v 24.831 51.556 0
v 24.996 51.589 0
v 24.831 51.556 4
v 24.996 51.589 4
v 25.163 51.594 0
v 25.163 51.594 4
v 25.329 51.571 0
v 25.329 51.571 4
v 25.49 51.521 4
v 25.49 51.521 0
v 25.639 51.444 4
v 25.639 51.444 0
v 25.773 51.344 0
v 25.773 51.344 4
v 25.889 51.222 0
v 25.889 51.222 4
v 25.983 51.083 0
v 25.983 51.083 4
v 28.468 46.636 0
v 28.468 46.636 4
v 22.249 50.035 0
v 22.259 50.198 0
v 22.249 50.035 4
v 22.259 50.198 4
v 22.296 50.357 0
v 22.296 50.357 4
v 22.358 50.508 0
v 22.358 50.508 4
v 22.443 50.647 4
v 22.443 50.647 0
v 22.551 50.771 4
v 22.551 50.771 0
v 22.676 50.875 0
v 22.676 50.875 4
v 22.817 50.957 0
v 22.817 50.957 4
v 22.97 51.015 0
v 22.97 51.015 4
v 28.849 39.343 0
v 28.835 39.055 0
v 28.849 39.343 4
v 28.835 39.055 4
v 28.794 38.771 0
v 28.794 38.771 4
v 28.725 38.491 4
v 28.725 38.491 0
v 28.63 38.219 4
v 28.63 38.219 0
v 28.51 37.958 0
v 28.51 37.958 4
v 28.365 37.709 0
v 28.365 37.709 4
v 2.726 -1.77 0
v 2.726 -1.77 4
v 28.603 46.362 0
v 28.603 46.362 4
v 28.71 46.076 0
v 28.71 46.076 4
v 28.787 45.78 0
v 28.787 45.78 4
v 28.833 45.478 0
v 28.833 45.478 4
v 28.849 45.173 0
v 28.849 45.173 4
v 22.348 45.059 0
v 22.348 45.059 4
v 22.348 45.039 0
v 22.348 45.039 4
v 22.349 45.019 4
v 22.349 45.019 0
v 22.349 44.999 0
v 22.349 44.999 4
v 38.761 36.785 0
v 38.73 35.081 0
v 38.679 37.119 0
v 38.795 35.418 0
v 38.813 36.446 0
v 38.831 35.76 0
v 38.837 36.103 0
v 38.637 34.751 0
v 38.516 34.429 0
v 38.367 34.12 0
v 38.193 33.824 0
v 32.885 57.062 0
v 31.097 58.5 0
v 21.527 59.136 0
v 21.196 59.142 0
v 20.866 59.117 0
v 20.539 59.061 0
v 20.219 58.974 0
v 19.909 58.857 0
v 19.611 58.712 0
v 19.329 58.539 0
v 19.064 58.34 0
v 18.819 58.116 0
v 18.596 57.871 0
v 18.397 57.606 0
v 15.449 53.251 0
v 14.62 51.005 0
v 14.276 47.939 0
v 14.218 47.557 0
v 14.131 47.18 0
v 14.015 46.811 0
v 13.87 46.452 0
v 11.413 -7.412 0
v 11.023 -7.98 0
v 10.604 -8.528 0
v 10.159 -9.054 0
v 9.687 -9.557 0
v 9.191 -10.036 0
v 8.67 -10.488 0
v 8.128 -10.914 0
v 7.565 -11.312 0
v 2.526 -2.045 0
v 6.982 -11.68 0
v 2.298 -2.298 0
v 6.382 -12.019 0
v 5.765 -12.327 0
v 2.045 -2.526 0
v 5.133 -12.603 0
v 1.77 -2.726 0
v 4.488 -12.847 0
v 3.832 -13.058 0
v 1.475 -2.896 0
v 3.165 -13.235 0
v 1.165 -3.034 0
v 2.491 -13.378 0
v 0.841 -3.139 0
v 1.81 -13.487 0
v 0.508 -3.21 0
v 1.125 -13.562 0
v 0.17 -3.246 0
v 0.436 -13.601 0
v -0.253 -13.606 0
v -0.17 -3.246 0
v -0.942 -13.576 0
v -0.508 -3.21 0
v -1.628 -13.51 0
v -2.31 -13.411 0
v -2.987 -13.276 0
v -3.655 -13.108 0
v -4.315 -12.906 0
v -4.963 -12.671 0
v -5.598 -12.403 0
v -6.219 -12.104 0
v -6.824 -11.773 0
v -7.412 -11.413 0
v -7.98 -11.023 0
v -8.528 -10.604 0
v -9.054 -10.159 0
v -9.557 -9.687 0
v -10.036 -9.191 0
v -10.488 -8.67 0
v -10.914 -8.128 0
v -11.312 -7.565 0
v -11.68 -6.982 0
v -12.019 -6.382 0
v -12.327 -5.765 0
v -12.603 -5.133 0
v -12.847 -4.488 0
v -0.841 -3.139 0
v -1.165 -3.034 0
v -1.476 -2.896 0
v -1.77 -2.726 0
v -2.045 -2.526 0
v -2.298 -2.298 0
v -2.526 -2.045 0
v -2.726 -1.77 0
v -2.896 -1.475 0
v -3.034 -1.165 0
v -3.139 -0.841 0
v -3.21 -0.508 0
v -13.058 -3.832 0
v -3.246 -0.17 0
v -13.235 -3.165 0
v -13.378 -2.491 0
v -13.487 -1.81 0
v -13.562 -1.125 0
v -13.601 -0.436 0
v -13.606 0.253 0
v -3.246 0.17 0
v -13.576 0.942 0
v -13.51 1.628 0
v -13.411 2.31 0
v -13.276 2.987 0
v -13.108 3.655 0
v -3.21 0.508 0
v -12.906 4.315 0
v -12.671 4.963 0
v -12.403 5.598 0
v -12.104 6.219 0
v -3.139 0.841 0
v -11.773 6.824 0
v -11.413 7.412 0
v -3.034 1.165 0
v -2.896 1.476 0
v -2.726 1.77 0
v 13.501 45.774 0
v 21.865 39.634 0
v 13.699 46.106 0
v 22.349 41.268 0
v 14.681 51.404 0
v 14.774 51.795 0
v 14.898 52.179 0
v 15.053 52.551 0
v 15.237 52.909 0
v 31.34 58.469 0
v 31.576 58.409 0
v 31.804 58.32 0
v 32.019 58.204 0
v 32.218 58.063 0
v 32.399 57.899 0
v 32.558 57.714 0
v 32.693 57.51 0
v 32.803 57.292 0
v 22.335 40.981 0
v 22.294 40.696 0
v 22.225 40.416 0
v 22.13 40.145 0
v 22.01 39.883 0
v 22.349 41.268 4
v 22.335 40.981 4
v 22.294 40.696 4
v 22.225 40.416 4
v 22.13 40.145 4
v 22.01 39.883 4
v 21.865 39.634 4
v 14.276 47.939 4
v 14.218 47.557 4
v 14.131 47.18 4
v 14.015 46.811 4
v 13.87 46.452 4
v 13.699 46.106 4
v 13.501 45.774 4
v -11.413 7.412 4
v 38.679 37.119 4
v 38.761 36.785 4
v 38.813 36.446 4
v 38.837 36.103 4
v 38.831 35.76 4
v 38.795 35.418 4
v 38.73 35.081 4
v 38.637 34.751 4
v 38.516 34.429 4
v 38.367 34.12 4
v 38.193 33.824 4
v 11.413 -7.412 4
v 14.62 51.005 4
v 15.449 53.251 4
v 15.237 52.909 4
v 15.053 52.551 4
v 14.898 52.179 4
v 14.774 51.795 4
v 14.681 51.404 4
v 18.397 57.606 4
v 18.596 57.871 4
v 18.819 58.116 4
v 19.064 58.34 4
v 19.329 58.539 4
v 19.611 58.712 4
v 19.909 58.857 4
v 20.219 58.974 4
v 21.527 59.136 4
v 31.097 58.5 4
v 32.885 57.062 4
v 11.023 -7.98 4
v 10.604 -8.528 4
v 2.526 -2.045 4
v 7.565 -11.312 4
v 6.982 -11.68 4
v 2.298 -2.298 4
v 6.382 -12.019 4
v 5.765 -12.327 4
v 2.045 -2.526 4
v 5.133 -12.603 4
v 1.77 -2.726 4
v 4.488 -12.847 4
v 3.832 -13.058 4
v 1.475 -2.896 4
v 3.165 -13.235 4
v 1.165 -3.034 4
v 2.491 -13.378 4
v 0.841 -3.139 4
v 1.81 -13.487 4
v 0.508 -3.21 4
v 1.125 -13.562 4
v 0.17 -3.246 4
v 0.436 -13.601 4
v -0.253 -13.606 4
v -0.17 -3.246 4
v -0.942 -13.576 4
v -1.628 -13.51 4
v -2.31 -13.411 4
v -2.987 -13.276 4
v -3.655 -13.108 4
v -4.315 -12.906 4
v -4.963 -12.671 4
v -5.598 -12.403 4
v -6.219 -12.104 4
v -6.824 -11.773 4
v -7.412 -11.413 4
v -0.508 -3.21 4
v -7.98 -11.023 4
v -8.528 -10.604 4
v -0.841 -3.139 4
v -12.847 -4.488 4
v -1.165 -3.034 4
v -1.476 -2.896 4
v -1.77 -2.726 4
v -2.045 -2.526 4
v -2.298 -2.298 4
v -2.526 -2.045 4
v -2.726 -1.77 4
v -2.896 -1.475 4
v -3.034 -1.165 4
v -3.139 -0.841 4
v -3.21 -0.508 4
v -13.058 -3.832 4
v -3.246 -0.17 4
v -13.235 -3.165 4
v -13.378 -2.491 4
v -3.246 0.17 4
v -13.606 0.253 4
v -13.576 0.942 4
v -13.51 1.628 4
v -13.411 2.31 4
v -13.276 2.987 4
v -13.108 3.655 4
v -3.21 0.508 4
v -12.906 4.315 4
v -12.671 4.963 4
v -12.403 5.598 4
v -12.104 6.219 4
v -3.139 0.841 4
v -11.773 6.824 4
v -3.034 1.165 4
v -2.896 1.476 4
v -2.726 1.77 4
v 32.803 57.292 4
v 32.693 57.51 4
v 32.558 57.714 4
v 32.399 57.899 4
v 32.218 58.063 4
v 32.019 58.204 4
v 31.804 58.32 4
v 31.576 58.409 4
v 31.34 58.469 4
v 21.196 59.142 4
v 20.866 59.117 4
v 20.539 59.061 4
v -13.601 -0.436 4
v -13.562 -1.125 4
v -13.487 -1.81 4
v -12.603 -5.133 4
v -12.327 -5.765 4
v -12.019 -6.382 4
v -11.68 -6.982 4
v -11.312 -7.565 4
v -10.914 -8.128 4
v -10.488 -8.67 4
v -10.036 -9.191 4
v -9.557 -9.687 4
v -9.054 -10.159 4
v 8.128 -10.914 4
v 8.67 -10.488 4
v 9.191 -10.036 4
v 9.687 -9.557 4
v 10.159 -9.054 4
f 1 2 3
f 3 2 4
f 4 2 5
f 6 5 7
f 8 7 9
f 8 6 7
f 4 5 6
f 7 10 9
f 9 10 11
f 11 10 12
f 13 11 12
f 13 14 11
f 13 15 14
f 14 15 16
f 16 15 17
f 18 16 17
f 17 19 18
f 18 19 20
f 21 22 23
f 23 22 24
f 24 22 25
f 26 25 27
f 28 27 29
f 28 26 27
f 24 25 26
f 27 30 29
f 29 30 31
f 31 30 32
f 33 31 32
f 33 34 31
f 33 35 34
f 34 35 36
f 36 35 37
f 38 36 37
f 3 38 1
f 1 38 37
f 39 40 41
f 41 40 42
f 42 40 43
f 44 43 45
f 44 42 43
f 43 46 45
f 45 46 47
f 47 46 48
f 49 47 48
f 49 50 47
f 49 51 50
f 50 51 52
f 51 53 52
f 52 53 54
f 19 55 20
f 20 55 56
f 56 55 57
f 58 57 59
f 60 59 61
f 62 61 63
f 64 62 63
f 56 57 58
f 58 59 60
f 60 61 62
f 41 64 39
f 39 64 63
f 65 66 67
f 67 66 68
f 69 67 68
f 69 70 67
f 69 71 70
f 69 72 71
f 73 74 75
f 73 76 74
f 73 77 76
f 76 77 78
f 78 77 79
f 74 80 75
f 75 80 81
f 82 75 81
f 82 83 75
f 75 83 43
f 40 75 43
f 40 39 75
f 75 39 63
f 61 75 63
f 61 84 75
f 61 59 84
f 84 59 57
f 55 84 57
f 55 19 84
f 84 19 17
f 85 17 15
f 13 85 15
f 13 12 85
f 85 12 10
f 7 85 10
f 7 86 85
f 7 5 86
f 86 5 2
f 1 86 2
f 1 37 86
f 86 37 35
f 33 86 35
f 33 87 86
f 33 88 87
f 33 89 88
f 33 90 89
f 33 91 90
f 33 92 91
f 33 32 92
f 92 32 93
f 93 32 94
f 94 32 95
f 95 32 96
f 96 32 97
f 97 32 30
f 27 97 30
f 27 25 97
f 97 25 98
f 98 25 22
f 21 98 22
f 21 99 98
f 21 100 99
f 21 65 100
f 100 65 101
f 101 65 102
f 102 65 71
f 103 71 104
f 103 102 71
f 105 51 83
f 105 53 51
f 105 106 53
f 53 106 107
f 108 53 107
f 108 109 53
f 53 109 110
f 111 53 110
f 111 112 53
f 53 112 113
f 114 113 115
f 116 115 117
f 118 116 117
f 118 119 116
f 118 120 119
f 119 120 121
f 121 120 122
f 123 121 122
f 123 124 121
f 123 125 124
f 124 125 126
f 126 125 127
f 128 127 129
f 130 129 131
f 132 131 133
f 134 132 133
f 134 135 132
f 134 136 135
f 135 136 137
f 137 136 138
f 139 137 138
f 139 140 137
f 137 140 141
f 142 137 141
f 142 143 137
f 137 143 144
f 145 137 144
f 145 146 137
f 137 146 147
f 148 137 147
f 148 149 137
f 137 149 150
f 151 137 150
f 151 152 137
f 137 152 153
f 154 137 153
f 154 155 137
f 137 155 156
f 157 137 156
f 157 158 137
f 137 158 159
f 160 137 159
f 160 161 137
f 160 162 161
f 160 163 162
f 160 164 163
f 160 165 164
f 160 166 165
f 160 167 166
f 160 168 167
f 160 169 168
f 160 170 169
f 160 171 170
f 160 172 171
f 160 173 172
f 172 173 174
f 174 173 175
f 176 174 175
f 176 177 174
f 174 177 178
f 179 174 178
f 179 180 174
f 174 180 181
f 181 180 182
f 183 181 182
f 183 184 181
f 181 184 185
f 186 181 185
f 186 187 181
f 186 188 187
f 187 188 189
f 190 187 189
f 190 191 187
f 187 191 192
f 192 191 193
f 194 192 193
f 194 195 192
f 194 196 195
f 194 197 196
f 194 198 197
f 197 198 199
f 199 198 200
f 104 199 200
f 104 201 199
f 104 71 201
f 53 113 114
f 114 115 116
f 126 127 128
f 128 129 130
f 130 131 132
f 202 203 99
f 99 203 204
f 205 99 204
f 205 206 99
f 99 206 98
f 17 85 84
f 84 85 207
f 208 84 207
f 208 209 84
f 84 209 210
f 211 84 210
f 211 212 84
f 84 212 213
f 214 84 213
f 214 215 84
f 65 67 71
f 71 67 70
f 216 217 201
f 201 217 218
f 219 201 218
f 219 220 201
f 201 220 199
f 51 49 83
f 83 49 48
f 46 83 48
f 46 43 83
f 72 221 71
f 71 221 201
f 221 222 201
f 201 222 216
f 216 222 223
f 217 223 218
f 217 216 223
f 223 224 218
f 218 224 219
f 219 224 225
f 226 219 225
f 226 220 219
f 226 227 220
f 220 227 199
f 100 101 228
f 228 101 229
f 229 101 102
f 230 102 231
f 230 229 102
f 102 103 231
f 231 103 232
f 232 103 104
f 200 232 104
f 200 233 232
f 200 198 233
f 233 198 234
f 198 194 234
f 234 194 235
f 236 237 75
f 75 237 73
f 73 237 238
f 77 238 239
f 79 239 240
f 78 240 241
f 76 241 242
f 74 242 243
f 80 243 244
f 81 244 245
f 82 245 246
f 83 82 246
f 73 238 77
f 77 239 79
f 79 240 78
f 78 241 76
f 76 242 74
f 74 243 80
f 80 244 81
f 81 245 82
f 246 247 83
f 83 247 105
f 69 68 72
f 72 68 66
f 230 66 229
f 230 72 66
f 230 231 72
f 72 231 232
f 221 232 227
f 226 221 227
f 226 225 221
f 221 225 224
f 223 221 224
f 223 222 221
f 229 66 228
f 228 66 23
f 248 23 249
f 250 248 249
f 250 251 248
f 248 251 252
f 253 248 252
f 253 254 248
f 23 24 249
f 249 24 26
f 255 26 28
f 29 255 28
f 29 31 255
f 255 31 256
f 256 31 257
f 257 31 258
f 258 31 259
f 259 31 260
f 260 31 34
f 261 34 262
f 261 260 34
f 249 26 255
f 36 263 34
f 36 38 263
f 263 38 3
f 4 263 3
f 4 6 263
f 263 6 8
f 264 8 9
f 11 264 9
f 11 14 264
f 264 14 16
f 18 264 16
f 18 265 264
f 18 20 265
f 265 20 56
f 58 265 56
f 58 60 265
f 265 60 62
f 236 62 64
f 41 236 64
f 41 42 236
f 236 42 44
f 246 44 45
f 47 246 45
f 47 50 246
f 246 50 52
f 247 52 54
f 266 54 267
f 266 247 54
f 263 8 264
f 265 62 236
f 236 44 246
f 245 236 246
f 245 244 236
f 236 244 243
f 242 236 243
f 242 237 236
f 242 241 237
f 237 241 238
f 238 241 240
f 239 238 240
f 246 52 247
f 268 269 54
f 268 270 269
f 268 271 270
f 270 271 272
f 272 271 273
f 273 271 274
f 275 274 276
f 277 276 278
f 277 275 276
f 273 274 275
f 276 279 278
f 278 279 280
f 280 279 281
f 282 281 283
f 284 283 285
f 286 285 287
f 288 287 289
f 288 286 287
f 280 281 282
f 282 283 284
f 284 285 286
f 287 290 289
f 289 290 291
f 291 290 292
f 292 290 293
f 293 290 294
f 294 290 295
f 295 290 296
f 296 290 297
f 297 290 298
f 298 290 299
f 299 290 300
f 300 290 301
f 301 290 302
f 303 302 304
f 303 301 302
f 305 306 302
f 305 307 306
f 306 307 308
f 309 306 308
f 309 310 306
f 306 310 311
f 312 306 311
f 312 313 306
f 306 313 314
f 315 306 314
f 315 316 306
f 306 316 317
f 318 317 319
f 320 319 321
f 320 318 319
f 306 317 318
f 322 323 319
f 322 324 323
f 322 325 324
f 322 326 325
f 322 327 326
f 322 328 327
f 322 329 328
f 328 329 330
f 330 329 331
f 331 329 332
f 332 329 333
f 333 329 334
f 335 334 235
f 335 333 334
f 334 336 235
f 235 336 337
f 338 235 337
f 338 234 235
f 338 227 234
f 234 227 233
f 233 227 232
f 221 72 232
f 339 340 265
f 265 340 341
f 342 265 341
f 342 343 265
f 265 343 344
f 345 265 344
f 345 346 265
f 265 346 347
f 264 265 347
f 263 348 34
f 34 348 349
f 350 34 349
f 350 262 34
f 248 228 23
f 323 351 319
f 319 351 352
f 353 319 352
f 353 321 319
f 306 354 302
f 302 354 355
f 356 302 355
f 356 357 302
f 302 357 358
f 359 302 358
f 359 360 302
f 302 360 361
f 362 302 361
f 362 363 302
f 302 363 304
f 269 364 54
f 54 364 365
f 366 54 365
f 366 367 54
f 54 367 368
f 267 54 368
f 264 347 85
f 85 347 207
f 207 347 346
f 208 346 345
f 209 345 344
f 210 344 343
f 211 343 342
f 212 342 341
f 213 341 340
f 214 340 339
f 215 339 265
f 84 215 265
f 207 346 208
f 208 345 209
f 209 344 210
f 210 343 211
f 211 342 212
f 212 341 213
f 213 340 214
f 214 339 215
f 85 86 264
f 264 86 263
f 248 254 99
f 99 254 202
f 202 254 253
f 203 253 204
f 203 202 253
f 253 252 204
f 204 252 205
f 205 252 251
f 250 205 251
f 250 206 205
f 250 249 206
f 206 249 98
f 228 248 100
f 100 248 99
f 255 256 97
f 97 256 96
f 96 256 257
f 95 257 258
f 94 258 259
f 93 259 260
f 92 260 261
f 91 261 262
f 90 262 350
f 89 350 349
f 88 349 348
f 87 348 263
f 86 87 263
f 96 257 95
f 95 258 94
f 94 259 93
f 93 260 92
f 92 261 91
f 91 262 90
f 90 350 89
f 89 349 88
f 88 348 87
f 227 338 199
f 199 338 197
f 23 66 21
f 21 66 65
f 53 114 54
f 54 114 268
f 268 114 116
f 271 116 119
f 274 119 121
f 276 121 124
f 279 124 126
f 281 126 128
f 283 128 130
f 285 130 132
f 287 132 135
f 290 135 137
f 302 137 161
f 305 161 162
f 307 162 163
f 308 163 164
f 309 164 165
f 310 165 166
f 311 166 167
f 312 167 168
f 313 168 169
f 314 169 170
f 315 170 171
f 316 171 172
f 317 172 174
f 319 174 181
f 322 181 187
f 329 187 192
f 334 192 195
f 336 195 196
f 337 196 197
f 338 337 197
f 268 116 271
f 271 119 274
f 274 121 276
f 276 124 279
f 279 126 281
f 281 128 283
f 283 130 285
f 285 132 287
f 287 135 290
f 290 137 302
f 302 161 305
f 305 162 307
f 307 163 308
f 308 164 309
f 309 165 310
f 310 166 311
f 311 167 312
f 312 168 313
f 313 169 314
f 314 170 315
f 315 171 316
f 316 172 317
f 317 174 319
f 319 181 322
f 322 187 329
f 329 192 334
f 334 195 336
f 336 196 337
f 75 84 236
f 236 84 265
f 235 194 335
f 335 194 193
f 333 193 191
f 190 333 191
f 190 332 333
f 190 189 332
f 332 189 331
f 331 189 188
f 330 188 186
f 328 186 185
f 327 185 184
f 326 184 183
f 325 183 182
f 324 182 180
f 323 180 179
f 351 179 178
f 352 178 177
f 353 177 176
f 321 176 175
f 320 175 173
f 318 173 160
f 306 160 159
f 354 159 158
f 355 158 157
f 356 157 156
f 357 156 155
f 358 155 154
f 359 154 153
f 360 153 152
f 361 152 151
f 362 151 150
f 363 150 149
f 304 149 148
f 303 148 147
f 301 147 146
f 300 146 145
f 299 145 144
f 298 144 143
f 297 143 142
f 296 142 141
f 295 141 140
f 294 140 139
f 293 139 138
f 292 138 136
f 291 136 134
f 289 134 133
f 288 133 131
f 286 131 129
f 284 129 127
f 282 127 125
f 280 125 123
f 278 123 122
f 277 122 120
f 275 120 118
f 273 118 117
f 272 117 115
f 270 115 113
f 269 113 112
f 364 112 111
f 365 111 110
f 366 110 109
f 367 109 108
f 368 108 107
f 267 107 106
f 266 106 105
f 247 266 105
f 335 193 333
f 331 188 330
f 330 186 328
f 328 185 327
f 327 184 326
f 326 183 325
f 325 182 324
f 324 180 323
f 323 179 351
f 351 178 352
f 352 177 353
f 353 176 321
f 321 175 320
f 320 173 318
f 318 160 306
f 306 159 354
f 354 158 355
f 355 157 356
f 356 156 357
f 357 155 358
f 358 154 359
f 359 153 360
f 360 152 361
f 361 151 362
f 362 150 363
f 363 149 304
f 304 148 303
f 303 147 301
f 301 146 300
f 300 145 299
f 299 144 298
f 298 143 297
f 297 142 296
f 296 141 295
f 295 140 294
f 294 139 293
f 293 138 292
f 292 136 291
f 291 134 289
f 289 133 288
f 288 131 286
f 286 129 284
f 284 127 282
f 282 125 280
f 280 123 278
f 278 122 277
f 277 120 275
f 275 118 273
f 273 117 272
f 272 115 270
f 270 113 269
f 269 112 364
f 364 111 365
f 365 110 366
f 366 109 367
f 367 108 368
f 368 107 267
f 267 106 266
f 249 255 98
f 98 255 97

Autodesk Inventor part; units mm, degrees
ref_plane "YZ Plane" through (0, 0, 0) normal (1, 0, 0) x (0, 1, 0)
ref_plane "XZ Plane" through (0, 0, 0) normal (0, 1, 0) x (-1, 0, 0)
ref_plane "XY Plane" through (0, 0, 0) normal (0, 0, 1) x (1, 0, 0)
sketch "Body" plane through (0, 0, 0) normal (0, 0, 1) x (1, 0, 0)
  line L0 (28.8487, 38.4543) -> (2.7256, -1.7701)
  line L1 (22.3487, 40.3798) -> (-2.7256, 1.7701)
  line L2 (22.3487, 40.3798) -> (22.3487, 45.0293)
  line L3 (28.8487, 38.4543) -> (28.8487, 45.9543)
  line L4 (32.4946, 58.4071) -> (39.19, 35.3599)
  line L5 (19.5232, 59.2689) -> (32.4946, 58.4071)
  line L6 (14.1445, 46.7648) -> (14.7577, 52.2305)
  line L7 (22.3487, 45.0293) -> (20.7935, 50.3829) construction
  line L8 (28.8487, 45.9543) -> (27.0354, 52.1963) construction
  arc A0 (-11.4127, 7.4118) -> (11.4127, -7.4118) centre (0, 0) ccw
  line L9 (-11.4127, 7.4118) -> (14.1445, 46.7648)
  line L10 (11.4127, -7.4118) -> (39.19, 35.3599)
  circle A1 centre (0, 0) radius 3.25
  line L11 (25.5987, 39.4171) -> (0, 0) construction
  line L12 (25.5987, 39.4171) -> (25.5987, 45.4918) construction
  line L13 (25.5987, 45.4918) -> (24.7618, 48.3727) construction
  line L14 (19.5232, 59.2689) -> (14.7577, 52.2305)
  line L15 (-30.4273, 0) -> (50.7929, 0) construction
  line L16 (20.7935, 50.3829) -> (22.2339, 50.8014) construction
  line L17 (22.3487, 45.0293) -> (22.2339, 50.8014)
  line L18 (28.8487, 45.9543) -> (25.595, 51.7778)
  line L19 (22.2339, 50.8014) -> (25.595, 51.7778)
  line L20 (25.595, 51.7778) -> (27.0354, 52.1963) construction
  dimension "d37" = 6.5
  dimension "d38" = 130.8
  dimension "d45" = 3.25
  dimension "d46" = 3.25
  dimension "d47" = 3.25
  dimension "d48" = 3.25
  dimension "d49" = 3.25
  dimension "d50" = 3.25
  dimension "d51" = 47
  dimension "d52" = 7.5
  dimension "d54" = 123.001
  dimension "d56" = 130.8
  dimension "d57" = 24
  dimension "d58" = 13
  dimension "d59" = 8.5
  dimension "d60" = 5.5
  dimension "d61" = 110
  dimension "d62" = 120.3
  dimension "d63" = 51
  dimension "d64" = 153.4
  dimension "d74" = 6.5
  dimension "d75" = 1.5
  dimension "d76" = 1.5
extrude "BodyFeature" add sketch "Body" along normal blind 4
fillet "BodyFillet1Feature" radius 3.5 1 edges at (19.5232, 59.2689, 2)
fillet "BodyFillet2Feature" radius 5 1 edges at (14.7577, 52.2305, 2)
fillet "BodyFillet3Feature" radius 2 1 edges at (32.4946, 58.4071, 2)
fillet "BodyFillet4Feature" radius 4 1 edges at (39.19, 35.3599, 2)
fillet "BodyFillet5Feature" radius 5 1 edges at (14.1445, 46.7648, 2)
fillet "InsideFilletsFeature" radius 3 4 edges at (22.3487, 40.3798, 2) (22.3487, 45.0293, 2) (28.8487, 45.9543, 2) (28.8487, 38.4543, 2)
fillet "InsideFilletsSmallFeature" radius 1 2 edges at (22.2339, 50.8014, 2) (25.595, 51.7778, 2)
properties part number "PelvisLinkLeft"
